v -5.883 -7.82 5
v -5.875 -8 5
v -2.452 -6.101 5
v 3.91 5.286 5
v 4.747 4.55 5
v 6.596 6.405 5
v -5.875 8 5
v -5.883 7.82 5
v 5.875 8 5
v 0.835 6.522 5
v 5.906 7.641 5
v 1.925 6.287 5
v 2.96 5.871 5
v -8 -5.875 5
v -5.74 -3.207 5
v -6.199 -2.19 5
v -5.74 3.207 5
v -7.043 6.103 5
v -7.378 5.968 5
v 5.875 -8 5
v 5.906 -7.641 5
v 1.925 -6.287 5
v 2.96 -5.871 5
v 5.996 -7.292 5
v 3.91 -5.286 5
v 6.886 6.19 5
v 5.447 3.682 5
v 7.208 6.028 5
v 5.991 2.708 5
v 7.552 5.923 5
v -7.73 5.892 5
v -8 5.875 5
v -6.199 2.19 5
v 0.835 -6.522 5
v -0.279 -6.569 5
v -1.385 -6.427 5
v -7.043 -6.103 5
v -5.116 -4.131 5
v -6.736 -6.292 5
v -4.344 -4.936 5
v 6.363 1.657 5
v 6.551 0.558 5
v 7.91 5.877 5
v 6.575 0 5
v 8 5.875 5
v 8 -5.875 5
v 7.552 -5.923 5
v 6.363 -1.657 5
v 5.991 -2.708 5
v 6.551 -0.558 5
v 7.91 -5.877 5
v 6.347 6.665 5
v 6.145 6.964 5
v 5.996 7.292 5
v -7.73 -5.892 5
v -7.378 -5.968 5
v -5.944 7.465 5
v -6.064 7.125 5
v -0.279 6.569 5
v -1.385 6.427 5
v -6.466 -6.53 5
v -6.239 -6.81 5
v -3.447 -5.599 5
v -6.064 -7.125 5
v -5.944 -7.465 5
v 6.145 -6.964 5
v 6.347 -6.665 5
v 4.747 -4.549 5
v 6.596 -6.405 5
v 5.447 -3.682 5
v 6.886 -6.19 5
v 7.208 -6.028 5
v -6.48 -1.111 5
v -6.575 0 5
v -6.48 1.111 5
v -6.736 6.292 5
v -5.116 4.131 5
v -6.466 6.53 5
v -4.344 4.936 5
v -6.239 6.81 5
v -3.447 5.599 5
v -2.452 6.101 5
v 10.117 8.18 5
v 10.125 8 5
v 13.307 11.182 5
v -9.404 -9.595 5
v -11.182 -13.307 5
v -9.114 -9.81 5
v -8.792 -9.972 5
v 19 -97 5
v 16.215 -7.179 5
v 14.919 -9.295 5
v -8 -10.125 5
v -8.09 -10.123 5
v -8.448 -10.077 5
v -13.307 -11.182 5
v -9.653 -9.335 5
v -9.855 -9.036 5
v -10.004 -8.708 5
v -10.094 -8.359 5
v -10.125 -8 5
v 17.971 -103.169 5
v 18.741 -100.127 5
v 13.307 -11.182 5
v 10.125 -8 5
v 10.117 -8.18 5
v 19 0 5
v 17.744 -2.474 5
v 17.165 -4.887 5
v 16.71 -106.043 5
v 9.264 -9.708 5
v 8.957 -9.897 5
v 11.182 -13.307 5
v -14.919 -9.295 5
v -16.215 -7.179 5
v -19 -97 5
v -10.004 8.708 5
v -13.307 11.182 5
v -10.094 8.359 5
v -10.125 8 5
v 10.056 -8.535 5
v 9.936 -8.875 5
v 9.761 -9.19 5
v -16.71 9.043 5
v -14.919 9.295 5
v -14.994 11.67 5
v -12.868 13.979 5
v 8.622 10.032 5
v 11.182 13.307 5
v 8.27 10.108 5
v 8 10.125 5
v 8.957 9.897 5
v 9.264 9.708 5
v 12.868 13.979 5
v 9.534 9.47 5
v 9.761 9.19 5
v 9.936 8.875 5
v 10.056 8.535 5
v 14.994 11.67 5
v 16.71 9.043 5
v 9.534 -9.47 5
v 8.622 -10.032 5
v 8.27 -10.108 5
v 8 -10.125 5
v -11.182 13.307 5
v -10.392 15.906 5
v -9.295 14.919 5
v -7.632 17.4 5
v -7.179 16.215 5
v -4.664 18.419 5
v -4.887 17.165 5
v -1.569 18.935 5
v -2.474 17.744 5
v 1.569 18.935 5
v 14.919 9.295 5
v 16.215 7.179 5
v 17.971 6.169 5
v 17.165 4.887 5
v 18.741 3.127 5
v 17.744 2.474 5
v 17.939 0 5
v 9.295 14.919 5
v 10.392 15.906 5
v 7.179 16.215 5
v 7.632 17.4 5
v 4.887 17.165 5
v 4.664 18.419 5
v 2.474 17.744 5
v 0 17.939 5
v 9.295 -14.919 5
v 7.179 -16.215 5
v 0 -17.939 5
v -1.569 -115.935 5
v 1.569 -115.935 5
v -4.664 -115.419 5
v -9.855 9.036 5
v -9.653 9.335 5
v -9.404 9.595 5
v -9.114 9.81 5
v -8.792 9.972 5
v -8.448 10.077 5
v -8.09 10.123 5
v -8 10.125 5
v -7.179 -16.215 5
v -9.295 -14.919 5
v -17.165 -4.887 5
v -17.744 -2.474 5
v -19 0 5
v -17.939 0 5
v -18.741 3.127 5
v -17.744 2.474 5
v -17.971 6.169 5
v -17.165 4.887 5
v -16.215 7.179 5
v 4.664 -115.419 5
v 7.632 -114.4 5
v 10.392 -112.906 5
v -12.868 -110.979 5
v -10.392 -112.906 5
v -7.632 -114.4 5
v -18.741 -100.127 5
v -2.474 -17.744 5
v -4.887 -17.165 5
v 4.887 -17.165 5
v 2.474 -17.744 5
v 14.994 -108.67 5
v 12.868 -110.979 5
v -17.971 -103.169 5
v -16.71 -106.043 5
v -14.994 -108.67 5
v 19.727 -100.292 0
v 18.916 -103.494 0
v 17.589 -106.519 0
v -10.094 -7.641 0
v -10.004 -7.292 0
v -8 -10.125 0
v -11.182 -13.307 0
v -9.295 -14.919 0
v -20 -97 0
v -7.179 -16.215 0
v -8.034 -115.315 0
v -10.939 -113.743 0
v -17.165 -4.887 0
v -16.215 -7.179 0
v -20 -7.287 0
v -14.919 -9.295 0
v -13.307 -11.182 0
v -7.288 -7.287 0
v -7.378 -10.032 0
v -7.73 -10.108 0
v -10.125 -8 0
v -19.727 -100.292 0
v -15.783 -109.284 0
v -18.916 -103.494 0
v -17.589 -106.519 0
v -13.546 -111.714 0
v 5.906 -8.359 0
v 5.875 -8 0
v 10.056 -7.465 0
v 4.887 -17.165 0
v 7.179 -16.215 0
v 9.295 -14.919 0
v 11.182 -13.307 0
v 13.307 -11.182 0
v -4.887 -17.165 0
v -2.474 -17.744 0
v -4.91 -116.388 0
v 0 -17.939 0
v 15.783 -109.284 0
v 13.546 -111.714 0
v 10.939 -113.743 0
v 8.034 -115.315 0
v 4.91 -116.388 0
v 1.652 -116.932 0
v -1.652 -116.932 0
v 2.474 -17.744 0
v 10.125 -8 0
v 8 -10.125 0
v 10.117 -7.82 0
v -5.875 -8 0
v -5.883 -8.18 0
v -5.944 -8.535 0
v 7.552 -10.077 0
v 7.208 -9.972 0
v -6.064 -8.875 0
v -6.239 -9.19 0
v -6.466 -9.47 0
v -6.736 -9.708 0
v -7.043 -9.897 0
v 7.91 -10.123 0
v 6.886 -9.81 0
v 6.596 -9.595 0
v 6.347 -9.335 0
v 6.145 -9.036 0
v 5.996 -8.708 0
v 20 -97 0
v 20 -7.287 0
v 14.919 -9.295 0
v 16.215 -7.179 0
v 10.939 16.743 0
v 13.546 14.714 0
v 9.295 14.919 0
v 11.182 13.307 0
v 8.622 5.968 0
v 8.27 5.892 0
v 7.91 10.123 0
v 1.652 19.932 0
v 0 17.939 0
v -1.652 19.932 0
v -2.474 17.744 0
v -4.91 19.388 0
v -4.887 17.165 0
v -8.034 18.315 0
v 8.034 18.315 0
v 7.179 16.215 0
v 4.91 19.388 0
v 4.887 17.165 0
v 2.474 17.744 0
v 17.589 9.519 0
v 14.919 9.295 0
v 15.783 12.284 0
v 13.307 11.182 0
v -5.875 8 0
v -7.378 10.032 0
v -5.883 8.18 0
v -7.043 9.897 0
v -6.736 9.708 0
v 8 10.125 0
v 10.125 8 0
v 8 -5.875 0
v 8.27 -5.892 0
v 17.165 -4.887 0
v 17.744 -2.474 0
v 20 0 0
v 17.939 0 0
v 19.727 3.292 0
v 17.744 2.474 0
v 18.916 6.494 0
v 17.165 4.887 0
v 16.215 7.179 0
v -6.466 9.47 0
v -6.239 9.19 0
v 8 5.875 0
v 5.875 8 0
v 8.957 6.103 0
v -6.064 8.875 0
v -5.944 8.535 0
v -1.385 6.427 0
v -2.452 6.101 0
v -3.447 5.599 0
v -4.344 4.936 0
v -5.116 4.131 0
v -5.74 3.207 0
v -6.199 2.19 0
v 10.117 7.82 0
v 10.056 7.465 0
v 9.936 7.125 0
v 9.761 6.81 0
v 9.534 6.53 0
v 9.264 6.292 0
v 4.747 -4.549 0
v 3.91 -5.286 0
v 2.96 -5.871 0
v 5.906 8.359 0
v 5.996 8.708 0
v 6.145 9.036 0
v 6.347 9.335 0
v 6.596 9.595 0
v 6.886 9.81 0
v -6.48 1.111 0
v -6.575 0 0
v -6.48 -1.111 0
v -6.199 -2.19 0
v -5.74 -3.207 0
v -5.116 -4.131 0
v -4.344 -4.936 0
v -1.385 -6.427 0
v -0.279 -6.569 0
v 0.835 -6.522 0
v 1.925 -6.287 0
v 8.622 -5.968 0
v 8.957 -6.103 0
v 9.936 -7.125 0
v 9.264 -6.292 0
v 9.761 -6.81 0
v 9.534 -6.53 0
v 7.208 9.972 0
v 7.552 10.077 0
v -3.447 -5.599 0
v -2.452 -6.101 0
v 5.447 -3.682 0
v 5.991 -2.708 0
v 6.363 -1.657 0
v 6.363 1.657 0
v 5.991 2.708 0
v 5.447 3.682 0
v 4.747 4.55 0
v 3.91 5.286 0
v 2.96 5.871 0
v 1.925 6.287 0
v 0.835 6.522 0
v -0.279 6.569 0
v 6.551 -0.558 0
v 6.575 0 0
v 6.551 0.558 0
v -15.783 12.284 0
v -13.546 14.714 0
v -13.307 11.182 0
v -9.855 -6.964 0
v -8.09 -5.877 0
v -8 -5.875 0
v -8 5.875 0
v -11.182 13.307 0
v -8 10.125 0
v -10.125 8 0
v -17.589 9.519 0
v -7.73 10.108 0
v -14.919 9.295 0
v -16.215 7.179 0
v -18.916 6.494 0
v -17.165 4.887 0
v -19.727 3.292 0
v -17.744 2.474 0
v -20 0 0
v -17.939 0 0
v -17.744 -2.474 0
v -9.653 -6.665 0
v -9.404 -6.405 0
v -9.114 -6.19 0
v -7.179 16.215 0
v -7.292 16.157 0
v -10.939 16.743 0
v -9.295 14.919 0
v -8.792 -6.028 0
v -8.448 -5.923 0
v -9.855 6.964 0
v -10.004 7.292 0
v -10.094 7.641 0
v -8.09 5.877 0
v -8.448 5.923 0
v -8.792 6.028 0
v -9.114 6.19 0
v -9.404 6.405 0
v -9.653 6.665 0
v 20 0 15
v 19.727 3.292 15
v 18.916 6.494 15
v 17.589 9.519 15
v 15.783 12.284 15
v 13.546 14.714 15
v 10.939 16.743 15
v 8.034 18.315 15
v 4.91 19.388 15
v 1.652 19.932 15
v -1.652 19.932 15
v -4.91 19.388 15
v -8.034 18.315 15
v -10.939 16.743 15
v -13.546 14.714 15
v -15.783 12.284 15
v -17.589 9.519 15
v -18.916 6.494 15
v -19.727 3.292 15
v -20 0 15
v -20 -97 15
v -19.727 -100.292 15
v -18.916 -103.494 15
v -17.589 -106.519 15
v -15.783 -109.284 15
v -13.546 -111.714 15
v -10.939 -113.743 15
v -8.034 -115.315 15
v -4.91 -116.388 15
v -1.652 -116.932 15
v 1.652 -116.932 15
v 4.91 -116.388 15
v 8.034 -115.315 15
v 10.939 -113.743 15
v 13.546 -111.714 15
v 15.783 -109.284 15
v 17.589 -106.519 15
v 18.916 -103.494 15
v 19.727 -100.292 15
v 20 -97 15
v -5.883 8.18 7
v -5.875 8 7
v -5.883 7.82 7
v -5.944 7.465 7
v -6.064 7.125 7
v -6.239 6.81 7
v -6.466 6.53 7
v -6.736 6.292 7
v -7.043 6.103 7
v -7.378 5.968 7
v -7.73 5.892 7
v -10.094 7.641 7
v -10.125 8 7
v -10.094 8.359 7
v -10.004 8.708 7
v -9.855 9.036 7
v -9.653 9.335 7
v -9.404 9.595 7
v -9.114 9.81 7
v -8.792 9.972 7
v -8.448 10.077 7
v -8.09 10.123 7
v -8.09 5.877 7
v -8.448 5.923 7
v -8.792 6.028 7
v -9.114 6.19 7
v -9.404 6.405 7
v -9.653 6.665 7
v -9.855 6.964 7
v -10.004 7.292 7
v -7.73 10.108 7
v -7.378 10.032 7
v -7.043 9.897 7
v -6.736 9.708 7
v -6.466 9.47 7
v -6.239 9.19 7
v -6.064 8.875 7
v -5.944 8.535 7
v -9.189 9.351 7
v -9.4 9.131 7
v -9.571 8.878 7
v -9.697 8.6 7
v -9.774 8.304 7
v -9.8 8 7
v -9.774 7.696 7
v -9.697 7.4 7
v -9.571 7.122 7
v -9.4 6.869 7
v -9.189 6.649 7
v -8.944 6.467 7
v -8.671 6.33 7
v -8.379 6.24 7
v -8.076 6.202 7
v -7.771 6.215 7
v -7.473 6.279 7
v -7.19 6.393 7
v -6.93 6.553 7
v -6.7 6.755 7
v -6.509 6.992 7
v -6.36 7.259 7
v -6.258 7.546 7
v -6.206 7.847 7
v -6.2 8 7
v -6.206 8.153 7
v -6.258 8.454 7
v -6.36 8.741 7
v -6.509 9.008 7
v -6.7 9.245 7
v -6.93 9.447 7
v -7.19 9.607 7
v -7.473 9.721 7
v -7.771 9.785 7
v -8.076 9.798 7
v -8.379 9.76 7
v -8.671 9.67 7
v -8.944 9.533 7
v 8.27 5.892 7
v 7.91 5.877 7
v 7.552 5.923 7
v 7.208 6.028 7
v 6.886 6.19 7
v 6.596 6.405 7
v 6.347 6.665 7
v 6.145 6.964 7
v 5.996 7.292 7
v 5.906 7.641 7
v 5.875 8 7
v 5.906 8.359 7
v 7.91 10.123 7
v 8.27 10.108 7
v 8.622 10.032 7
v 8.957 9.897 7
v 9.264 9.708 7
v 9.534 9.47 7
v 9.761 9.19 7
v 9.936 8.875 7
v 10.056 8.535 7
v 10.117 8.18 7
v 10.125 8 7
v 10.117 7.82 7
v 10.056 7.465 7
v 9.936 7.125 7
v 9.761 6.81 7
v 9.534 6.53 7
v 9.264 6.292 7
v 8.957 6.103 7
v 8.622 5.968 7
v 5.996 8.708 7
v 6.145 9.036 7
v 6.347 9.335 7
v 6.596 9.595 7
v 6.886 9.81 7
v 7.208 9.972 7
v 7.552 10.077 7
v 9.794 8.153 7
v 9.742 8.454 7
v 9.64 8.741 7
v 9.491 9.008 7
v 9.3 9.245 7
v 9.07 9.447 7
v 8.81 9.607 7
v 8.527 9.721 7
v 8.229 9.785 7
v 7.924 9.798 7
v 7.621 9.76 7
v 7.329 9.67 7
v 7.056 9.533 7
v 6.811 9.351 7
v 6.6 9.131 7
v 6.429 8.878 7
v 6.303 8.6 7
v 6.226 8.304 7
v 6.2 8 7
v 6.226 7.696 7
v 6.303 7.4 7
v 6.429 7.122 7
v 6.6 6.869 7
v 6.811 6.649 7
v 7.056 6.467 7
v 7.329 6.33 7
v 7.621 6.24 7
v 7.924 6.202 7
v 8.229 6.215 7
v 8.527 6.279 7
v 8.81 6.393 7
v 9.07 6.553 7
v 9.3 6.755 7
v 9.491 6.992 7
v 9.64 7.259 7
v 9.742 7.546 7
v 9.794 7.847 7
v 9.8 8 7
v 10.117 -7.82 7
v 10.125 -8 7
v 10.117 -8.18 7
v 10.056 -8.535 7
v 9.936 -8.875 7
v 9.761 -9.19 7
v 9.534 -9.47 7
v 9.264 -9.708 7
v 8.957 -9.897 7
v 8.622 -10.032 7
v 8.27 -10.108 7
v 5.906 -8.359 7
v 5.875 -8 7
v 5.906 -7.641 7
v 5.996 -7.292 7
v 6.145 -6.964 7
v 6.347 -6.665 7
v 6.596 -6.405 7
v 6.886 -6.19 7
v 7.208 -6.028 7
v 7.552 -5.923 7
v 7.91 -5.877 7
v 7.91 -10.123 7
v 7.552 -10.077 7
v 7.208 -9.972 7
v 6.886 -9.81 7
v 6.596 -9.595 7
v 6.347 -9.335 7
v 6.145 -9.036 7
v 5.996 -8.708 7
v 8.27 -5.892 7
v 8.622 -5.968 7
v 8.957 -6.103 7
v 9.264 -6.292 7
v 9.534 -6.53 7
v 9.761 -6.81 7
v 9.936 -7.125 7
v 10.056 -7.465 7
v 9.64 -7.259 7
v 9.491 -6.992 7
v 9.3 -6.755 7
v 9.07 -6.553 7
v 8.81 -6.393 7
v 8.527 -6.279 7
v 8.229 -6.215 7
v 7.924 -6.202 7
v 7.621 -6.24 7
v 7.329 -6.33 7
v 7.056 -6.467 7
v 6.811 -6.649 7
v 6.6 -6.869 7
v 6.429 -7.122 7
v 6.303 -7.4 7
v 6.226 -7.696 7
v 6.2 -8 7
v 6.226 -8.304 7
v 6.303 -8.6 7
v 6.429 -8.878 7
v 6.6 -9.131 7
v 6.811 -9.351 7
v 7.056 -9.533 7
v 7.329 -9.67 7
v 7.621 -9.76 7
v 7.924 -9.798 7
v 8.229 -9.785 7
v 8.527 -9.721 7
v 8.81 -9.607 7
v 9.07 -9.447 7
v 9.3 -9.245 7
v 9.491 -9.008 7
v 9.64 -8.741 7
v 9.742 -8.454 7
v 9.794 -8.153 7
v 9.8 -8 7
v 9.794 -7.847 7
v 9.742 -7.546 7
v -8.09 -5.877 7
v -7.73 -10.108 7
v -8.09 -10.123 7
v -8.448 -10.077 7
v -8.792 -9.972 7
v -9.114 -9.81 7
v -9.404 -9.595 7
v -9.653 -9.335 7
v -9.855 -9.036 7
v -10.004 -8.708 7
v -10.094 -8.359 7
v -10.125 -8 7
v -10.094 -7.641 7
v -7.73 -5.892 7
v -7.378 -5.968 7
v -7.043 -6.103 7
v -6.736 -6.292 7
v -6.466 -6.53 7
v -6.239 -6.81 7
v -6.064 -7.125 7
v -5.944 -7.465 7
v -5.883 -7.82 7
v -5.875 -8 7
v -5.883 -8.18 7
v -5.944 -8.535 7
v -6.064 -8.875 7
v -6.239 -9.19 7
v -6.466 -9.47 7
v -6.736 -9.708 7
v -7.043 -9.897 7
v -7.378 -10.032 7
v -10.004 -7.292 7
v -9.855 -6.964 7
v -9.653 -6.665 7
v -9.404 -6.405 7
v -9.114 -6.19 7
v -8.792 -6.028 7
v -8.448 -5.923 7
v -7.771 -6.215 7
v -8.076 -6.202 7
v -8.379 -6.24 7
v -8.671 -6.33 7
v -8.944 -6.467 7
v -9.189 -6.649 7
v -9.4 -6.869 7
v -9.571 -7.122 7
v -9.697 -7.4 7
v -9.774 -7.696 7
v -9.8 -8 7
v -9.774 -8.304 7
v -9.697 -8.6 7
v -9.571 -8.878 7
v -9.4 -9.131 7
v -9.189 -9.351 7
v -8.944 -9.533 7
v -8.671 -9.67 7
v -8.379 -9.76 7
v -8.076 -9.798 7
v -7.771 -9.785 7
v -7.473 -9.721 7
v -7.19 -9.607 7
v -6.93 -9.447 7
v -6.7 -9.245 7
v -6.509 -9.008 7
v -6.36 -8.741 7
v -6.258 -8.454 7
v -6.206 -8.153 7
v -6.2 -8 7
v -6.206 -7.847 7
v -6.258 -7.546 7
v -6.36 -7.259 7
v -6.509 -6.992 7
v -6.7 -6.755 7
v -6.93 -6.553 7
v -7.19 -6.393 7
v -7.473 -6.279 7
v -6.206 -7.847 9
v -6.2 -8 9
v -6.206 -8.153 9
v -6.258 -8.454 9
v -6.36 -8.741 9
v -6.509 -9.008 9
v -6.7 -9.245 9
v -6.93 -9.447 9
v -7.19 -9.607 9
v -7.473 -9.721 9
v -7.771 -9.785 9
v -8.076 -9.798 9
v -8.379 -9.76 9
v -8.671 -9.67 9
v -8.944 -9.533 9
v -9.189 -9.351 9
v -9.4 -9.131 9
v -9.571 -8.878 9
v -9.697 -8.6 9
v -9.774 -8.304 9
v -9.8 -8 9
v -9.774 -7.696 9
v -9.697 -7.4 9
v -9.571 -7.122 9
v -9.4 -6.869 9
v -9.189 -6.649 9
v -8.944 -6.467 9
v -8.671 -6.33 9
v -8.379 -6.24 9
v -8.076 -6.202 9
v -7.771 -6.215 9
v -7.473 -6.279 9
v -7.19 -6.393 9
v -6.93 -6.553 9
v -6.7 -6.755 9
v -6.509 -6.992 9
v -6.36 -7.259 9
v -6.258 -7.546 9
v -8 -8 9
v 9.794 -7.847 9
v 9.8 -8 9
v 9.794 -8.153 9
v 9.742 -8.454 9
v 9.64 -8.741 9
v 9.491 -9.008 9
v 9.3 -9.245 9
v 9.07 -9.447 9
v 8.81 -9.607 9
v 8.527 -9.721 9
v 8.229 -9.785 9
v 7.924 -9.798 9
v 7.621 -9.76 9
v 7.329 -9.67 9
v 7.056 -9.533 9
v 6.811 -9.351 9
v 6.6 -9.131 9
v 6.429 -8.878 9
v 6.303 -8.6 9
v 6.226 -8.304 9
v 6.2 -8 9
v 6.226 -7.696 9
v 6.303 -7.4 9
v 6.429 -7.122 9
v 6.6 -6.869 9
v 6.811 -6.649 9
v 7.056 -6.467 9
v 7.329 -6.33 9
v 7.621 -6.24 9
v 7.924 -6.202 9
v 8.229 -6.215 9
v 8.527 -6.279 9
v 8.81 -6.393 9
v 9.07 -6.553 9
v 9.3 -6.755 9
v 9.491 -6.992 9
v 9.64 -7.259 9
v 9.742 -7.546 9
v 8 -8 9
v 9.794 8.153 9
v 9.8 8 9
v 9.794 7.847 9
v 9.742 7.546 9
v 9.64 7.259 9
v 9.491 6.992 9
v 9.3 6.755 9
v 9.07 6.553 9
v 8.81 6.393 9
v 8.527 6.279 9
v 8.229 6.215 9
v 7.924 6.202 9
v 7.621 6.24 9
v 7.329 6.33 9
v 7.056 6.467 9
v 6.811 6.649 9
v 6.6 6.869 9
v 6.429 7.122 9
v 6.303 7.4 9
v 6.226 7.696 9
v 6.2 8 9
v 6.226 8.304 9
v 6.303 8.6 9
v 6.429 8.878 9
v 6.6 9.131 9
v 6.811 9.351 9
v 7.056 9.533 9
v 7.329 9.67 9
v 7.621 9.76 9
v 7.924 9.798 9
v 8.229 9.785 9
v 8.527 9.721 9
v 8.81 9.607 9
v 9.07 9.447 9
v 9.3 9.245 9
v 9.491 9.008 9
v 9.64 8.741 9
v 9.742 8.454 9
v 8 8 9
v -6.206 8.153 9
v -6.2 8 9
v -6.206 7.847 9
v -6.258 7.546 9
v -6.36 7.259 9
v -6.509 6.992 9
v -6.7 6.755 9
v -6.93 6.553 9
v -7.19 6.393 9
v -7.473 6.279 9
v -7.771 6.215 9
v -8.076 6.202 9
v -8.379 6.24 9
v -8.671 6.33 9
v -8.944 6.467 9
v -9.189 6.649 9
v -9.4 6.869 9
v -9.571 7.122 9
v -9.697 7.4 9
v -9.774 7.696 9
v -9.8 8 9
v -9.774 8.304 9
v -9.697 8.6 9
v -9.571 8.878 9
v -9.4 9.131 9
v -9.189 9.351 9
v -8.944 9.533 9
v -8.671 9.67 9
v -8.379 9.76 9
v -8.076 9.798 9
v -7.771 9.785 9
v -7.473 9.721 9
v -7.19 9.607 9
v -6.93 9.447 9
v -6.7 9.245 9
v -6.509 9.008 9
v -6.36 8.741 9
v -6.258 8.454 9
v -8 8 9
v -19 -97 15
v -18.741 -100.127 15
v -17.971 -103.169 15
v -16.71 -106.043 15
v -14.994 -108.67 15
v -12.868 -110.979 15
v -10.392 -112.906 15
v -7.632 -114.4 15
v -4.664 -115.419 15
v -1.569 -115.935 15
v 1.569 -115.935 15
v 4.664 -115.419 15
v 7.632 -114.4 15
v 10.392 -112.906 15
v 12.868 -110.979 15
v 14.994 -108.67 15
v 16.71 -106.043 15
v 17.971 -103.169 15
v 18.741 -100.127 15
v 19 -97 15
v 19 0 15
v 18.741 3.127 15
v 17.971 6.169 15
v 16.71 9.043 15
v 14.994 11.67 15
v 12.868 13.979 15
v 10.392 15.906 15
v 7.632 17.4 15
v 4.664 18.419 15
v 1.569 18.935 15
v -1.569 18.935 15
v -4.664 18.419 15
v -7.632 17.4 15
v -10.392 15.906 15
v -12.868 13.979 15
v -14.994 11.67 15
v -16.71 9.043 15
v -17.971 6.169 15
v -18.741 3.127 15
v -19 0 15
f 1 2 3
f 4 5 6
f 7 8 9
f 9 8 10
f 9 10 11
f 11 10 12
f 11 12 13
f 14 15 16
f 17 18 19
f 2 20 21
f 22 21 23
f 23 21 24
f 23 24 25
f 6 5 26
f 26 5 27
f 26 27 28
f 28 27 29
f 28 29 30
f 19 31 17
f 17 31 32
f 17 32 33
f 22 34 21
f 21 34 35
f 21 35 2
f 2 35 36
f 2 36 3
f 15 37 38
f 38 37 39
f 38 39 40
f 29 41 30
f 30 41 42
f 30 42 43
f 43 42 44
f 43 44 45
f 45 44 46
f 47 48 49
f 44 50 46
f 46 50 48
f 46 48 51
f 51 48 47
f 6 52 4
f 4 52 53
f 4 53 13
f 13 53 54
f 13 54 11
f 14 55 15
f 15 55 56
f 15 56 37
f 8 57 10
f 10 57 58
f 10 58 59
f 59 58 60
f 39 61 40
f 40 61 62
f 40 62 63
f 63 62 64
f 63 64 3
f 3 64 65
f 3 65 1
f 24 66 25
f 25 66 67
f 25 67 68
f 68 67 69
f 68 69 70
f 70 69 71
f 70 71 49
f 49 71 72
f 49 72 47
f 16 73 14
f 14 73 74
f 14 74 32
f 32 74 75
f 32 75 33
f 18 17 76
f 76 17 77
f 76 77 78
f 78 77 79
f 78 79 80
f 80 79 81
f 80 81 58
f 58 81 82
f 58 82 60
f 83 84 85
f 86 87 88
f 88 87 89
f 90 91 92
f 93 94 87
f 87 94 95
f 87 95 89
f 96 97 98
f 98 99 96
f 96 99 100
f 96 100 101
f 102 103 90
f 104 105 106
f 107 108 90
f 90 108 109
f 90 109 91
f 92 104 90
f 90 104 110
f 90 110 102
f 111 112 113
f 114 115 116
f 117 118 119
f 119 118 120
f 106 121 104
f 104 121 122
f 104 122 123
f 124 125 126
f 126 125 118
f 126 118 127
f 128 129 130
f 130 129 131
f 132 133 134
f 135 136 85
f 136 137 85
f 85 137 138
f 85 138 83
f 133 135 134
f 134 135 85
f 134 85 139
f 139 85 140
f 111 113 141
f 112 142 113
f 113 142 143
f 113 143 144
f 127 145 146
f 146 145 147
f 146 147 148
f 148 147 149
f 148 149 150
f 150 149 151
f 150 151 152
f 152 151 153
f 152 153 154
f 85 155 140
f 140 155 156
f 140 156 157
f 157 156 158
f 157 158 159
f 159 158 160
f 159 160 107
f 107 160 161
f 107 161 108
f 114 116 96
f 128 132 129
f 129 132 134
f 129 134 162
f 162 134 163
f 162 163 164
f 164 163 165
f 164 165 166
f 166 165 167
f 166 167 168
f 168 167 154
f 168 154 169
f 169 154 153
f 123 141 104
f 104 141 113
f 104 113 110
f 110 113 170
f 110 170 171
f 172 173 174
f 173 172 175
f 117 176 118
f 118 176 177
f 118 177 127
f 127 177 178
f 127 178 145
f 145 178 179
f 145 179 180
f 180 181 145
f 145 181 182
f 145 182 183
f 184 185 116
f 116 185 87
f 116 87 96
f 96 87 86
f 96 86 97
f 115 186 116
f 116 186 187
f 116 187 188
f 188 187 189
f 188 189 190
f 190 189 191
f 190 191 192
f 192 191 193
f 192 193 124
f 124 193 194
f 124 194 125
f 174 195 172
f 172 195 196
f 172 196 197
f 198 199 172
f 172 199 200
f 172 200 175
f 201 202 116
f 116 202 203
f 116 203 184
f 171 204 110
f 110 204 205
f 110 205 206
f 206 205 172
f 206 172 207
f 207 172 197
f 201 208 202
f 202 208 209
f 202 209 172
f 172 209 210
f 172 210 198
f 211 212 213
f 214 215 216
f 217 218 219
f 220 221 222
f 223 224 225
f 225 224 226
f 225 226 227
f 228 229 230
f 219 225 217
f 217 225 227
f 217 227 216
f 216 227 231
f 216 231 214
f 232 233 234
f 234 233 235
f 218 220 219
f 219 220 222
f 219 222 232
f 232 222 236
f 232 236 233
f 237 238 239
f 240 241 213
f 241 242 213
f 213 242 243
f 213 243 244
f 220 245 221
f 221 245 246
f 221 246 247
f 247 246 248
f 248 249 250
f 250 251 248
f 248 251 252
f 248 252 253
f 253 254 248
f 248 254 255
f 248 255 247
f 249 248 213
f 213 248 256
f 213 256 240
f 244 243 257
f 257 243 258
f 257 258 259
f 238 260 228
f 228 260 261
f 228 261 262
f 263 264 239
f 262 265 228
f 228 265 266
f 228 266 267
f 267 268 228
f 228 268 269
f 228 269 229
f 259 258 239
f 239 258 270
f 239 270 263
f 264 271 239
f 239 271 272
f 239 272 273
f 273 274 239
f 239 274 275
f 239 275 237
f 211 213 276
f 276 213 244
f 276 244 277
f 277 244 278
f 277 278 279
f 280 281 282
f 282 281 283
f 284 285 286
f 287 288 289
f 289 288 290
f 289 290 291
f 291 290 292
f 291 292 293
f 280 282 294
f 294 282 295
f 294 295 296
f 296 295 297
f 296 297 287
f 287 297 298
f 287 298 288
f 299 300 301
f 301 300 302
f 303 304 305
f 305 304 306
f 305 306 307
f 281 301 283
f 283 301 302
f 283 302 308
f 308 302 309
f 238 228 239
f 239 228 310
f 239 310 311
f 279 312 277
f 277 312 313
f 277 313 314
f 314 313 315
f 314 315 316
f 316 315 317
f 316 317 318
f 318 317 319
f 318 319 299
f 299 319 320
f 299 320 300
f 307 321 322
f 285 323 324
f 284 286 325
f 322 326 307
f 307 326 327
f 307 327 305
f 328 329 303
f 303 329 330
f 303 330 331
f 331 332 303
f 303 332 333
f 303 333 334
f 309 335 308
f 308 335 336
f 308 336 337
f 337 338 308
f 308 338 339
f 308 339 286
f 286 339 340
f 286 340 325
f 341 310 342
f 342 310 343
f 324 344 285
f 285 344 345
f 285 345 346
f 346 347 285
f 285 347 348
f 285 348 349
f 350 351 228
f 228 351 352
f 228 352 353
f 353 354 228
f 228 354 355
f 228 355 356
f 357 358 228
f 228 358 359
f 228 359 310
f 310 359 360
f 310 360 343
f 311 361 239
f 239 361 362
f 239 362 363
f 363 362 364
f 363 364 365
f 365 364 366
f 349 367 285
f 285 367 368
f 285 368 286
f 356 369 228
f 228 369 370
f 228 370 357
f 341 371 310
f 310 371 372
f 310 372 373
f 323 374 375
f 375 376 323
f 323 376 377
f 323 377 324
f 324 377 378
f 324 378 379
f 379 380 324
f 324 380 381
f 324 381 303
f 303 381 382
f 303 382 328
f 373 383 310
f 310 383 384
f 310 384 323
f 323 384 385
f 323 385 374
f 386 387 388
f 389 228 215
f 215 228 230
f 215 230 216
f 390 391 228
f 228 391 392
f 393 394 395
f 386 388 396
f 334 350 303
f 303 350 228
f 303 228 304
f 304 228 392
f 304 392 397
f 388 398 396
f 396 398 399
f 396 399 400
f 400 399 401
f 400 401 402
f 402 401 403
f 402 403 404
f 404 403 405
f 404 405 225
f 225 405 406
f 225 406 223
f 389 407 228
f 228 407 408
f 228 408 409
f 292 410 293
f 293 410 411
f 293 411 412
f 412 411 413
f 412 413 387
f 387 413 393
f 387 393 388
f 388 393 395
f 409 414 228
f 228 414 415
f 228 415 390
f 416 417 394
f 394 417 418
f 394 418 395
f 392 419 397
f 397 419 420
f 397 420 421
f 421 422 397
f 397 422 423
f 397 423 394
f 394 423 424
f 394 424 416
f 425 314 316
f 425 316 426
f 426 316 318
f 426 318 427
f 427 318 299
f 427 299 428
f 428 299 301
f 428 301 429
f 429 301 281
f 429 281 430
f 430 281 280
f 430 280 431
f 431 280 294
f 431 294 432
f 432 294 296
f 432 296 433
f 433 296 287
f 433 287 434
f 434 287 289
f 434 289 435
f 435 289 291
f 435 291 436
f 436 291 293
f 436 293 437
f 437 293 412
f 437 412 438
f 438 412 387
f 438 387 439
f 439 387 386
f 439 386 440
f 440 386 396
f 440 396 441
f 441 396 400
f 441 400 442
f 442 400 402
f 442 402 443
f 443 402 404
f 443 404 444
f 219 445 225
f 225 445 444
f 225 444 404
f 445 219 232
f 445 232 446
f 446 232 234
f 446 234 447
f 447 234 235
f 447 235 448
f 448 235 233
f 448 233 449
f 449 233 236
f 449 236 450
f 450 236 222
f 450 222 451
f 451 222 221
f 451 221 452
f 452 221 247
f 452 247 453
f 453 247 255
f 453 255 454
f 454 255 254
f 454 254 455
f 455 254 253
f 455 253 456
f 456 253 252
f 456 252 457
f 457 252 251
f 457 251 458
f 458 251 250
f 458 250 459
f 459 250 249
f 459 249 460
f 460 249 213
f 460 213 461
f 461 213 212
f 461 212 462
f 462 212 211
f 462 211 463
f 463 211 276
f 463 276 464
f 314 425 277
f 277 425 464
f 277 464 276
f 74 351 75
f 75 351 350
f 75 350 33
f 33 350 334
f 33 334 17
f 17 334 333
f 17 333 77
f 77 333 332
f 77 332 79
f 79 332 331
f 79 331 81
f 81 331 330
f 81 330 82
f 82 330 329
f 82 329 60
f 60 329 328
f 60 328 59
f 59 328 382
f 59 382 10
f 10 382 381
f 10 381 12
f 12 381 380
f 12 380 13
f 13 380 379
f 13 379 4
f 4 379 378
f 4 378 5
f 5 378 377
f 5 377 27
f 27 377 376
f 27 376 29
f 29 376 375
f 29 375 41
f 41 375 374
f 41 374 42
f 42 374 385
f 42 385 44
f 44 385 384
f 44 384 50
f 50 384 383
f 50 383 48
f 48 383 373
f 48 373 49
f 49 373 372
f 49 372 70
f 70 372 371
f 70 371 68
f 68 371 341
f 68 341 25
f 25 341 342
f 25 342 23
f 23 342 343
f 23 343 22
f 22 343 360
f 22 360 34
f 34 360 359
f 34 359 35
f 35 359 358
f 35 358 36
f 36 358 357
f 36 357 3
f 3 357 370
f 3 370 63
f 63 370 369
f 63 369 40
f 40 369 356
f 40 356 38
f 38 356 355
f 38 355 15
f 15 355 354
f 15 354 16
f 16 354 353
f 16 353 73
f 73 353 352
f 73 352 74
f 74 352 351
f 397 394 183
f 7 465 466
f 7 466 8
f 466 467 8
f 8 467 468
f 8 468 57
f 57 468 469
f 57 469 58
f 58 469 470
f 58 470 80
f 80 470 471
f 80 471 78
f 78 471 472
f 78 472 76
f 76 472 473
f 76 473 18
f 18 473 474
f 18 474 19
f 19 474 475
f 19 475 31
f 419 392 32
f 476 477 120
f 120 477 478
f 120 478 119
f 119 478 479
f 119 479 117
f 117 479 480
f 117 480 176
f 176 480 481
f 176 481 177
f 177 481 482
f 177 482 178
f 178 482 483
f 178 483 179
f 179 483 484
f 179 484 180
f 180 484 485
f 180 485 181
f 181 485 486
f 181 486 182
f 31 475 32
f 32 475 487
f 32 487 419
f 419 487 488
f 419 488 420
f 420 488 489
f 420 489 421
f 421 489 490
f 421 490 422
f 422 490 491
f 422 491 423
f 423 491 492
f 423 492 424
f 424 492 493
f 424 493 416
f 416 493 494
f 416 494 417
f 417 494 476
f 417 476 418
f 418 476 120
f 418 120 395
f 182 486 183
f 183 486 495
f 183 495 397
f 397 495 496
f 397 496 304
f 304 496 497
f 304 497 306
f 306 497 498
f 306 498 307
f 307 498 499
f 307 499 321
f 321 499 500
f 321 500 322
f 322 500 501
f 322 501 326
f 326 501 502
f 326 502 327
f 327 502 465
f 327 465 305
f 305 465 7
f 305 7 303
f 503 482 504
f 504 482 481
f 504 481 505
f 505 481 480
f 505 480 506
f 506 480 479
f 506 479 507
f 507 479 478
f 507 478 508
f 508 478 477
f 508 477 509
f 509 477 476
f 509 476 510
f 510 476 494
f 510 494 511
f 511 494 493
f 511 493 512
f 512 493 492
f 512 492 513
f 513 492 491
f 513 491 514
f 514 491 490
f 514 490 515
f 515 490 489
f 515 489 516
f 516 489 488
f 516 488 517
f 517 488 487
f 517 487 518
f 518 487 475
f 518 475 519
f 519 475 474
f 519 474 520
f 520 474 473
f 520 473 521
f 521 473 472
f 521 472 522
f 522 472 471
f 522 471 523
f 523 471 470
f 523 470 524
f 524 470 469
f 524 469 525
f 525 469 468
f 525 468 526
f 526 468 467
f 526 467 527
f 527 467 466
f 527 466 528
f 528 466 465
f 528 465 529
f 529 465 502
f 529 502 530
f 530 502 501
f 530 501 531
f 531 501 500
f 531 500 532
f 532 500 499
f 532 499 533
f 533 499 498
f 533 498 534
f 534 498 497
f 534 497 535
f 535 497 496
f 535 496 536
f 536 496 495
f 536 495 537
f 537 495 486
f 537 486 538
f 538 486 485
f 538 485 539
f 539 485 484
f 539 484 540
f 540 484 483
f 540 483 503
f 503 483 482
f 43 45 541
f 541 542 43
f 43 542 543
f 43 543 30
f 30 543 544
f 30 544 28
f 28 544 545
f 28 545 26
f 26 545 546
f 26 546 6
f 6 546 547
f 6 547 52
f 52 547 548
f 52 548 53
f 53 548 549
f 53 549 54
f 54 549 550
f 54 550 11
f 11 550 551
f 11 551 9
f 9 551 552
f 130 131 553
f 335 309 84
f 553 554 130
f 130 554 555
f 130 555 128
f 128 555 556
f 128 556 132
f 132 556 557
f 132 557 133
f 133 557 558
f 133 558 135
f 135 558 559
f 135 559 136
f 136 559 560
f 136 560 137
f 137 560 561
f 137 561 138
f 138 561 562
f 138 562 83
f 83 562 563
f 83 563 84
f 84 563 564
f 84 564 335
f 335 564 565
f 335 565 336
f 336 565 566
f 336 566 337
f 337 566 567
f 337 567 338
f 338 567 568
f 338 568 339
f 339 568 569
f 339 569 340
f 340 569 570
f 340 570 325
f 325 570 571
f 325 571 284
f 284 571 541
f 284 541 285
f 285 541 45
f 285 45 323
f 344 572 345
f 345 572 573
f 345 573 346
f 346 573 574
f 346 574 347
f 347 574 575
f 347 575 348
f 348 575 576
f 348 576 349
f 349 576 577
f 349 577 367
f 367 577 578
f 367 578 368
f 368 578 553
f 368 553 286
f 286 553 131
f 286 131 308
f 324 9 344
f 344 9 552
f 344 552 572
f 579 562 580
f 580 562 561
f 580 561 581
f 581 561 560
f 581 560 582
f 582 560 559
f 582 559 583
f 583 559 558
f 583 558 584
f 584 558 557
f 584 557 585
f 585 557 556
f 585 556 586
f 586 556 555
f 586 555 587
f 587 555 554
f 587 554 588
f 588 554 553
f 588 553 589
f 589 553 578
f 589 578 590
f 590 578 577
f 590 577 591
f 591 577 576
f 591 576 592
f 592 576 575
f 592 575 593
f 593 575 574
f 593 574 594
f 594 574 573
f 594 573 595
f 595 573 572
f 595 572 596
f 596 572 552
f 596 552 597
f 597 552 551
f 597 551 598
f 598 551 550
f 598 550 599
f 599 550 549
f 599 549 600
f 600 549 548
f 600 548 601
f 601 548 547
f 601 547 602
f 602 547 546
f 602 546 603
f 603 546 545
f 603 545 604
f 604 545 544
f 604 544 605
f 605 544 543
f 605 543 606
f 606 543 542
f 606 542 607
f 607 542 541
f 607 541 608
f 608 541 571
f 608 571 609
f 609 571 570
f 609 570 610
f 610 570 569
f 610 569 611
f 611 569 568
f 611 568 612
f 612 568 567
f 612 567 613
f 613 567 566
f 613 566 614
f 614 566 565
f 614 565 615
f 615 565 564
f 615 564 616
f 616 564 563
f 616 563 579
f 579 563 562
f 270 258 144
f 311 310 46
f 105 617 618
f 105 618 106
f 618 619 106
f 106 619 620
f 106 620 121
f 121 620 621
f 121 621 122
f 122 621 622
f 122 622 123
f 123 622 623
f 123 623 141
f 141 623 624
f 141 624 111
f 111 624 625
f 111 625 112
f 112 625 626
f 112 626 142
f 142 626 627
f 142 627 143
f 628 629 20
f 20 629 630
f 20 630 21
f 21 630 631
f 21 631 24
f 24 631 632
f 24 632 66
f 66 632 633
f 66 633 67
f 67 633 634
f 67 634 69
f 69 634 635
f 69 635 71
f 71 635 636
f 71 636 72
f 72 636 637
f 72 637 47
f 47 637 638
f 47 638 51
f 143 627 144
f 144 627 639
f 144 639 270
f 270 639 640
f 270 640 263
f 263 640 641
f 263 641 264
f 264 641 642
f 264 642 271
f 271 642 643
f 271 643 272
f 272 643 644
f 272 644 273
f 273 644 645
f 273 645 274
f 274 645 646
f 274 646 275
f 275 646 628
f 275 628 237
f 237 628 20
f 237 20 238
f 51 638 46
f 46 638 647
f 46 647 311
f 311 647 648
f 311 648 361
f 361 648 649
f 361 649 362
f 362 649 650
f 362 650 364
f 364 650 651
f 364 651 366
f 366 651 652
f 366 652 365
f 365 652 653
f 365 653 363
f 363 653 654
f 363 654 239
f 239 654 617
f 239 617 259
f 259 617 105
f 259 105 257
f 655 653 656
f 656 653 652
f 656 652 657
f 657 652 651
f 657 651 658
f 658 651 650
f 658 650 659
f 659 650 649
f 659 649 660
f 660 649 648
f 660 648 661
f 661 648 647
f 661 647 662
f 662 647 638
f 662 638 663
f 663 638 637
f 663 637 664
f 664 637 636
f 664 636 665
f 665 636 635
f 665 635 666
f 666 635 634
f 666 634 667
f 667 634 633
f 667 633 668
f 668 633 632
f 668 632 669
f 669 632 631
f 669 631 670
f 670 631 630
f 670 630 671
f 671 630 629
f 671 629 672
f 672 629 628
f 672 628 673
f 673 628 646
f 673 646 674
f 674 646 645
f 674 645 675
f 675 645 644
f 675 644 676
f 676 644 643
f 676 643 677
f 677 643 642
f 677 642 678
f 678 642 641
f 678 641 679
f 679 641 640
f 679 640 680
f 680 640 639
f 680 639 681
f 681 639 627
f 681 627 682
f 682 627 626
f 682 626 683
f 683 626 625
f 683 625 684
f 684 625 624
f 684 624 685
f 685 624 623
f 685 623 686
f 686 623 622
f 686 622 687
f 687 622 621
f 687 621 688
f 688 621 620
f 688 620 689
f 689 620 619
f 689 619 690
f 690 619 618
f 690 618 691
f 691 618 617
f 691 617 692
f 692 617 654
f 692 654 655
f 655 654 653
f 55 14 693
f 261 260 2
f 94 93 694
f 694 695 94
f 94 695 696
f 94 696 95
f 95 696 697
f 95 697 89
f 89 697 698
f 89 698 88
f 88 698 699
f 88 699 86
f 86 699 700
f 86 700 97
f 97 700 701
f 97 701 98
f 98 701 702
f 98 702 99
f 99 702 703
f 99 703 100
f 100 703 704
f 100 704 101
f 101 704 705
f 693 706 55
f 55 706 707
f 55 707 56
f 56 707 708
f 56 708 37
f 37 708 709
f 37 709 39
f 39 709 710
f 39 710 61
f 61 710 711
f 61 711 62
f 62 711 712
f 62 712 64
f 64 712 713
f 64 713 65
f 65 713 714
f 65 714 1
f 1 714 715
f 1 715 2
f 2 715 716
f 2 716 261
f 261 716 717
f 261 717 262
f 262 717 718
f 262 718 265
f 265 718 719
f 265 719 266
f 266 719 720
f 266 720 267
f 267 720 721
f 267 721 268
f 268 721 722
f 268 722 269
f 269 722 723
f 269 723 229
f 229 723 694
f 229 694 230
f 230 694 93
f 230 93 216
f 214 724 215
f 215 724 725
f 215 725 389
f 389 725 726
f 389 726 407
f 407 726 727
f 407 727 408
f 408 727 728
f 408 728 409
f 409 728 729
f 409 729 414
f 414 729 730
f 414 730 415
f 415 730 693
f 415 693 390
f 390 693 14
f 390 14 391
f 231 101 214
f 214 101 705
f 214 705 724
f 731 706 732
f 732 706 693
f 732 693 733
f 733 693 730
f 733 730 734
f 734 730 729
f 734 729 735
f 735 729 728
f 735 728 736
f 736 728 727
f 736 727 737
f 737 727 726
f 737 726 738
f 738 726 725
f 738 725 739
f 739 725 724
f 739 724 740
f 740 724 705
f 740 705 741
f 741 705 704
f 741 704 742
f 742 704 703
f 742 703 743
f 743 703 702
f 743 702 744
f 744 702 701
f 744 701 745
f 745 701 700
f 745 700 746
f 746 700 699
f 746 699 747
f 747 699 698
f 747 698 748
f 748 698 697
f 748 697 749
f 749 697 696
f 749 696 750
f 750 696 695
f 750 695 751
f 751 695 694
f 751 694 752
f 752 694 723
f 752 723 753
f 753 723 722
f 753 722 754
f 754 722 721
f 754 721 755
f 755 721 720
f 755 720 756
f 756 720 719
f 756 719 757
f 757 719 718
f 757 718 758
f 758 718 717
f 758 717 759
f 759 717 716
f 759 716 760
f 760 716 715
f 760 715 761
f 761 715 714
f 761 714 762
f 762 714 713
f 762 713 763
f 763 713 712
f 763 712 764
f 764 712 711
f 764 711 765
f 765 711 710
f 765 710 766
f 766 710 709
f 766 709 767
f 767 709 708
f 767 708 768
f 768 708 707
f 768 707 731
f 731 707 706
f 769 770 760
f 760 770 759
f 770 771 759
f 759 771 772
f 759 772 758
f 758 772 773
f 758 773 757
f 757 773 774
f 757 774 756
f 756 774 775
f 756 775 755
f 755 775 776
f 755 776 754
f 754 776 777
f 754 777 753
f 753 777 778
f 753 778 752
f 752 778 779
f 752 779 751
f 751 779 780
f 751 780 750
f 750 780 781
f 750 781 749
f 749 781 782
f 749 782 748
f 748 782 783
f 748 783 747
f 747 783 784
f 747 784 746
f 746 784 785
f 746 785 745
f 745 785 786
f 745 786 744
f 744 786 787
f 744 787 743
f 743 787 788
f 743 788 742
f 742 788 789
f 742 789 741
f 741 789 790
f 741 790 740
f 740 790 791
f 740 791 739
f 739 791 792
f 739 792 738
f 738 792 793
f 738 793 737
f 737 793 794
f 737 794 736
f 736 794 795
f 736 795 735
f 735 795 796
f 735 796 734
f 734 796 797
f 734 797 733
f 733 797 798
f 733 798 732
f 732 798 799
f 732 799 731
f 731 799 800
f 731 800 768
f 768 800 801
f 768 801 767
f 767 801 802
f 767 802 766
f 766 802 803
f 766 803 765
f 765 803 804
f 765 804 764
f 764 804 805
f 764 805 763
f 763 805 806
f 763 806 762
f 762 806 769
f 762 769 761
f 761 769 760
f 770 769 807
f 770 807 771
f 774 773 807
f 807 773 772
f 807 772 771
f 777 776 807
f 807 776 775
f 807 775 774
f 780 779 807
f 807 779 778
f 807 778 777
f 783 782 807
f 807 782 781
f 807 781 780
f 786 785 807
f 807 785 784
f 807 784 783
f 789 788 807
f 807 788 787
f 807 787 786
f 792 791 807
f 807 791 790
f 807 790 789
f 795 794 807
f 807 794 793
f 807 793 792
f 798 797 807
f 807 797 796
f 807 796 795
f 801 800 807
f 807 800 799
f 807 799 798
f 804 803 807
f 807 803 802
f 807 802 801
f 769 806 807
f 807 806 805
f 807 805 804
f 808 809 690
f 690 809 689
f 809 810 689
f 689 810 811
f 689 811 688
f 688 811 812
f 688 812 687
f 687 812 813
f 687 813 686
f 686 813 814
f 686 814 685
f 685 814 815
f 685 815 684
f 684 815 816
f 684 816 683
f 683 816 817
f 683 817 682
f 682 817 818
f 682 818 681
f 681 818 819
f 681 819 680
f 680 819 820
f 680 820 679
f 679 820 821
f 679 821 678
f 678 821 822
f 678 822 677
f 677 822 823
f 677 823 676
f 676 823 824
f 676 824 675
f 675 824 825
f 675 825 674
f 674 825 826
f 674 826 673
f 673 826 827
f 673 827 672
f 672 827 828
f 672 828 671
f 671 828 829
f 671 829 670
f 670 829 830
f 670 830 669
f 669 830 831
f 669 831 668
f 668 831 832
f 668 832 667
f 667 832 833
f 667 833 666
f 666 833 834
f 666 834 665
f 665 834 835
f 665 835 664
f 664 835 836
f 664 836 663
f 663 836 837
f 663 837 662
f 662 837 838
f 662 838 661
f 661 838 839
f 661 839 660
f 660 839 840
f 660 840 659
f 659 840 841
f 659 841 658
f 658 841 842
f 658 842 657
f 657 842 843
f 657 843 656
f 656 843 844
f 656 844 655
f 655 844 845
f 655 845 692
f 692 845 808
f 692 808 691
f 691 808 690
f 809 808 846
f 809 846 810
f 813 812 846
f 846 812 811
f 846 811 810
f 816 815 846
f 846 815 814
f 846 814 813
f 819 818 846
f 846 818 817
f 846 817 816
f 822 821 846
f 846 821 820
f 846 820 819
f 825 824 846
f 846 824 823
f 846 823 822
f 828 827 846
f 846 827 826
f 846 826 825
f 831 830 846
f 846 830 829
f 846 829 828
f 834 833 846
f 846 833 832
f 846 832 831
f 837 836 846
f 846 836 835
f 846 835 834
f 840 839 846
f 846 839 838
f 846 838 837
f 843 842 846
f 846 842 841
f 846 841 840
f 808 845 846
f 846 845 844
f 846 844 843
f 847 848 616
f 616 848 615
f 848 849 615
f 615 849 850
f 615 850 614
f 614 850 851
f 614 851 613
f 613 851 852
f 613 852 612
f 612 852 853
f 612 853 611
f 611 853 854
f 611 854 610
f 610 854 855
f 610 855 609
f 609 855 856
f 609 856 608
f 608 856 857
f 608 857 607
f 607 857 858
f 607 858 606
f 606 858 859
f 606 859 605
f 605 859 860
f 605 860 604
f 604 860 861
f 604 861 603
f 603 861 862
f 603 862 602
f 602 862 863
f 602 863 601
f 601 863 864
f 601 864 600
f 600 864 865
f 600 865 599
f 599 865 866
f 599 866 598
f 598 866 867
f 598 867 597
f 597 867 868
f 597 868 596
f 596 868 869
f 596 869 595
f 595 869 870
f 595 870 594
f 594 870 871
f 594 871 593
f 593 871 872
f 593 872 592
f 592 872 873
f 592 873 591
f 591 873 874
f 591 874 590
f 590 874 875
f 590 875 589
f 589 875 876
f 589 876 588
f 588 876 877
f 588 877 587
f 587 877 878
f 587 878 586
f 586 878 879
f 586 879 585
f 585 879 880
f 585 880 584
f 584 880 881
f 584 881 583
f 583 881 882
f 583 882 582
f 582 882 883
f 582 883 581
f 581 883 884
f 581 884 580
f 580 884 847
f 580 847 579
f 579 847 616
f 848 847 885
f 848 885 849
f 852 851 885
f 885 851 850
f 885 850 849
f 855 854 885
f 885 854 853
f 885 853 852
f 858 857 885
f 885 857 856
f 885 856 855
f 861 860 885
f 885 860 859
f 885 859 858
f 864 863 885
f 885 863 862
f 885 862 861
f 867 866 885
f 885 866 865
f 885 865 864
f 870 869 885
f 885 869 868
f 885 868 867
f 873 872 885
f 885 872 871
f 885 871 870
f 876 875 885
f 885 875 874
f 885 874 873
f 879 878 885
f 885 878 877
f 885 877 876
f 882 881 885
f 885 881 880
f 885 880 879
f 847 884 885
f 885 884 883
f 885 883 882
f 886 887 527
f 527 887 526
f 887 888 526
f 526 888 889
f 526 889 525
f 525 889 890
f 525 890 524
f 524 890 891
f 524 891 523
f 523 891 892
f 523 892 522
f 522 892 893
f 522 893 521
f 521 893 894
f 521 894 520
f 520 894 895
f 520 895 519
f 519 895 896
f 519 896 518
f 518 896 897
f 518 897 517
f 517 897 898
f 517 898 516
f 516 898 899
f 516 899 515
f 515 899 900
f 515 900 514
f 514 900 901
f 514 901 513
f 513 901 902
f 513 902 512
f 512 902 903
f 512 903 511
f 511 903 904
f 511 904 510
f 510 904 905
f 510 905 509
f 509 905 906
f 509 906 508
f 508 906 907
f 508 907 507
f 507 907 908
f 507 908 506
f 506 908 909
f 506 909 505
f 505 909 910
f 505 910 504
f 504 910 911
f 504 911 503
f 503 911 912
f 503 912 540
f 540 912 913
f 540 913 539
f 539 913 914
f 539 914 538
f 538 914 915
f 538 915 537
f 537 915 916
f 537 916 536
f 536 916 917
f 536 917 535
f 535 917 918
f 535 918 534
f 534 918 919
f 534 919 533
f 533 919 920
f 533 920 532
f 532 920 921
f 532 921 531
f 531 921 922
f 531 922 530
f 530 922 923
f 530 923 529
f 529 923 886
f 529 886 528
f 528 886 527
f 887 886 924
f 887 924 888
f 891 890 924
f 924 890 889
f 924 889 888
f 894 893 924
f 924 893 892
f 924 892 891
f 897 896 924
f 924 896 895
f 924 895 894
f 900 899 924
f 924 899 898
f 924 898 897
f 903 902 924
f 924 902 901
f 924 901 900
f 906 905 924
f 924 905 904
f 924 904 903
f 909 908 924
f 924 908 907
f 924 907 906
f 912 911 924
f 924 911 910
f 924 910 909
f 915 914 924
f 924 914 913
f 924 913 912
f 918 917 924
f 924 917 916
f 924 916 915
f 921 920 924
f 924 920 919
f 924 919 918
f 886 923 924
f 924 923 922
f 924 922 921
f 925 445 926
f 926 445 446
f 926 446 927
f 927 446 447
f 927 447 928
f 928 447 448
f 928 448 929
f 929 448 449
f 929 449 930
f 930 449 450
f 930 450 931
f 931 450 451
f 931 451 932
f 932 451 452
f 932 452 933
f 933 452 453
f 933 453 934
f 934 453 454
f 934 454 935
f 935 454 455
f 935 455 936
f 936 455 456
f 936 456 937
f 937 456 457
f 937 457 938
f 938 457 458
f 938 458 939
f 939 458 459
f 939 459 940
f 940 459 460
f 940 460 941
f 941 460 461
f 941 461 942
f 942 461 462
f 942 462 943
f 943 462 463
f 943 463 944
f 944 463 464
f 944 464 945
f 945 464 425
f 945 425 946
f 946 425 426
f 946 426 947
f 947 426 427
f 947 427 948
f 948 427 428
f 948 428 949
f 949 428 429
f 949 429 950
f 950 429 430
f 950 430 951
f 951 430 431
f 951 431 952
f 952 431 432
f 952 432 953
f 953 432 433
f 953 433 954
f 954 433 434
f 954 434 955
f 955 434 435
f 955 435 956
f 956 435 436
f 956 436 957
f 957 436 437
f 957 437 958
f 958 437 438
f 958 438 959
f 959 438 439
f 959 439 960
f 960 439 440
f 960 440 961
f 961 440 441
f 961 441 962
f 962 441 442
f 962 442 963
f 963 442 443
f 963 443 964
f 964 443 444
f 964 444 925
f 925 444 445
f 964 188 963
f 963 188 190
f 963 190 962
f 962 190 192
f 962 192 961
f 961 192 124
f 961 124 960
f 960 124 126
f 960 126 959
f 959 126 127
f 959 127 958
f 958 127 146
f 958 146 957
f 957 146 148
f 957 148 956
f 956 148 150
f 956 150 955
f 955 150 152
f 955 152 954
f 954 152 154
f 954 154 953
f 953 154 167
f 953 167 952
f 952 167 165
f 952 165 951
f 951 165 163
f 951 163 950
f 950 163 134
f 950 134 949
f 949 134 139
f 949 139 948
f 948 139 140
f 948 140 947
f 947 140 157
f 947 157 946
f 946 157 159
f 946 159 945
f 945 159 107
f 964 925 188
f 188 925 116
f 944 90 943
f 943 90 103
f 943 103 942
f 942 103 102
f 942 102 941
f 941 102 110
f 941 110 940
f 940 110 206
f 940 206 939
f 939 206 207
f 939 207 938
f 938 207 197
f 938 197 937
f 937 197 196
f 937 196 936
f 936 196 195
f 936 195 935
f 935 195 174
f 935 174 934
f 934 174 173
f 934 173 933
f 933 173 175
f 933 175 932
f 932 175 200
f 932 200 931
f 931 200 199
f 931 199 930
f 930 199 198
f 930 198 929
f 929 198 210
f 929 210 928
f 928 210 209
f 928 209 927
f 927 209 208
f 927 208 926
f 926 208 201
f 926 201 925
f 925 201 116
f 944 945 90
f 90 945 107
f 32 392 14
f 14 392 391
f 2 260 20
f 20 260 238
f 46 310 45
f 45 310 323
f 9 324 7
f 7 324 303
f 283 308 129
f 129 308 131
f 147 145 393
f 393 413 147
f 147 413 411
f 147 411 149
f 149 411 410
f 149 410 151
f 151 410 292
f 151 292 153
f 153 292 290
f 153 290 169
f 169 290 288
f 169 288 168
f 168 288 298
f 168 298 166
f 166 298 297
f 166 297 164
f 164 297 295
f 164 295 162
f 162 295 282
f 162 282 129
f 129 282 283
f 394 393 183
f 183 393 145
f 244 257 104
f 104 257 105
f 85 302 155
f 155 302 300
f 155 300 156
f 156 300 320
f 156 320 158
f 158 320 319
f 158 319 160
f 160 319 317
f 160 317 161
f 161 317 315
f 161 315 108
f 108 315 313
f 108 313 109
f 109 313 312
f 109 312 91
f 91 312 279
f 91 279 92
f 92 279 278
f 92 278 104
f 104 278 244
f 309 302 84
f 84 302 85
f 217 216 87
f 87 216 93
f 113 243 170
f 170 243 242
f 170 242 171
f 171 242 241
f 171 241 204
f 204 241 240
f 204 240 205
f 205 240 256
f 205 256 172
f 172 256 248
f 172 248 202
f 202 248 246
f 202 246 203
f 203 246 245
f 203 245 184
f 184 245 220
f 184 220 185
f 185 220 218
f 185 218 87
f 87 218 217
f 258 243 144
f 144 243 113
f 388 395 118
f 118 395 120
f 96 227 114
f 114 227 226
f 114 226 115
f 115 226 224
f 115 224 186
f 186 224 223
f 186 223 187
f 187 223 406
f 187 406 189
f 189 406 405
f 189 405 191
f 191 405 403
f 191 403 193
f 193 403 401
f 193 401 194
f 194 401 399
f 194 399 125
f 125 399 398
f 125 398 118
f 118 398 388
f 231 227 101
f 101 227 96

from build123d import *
from build123d.topology import SkipClean

# Parameters (mm, degrees)
SKETCH2_R           = 6.575
BOSS_EXTRUDE1_DEPTH = 5
SKETCH4_R           = 2.125
BOSS_EXTRUDE3_DEPTH = 2
SKETCH5_R           = 1.8
BOSS_EXTRUDE4_DEPTH = 2
BOSS_EXTRUDE5_DEPTH = 10
CUT_EXTRUDE1_START  = -10
CUT_EXTRUDE1_DEPTH  = 10
CUT_EXTRUDE2_DEPTH  = 10


with BuildPart() as part:
    # Sketch2 → Boss-Extrude1 (new body)
    with BuildSketch(Plane.XY):
        with BuildLine():
            Line((-20, 0), (-20, -97))
            ThreePointArc((-20, -97), (0, -117), (20, -97))
            Line((20, -97), (20, 0))
            ThreePointArc((20, 0), (0, 20), (-20, 0))
        make_face()
        Circle(SKETCH2_R, mode=Mode.SUBTRACT)
    extrude(amount=BOSS_EXTRUDE1_DEPTH)

    # Sketch4 → Boss-Extrude3 (add)
    with BuildSketch(Plane.XY.offset(5)):
        with Locations((-8, 8)):
            Circle(SKETCH4_R)
        with Locations((8, 8)):
            Circle(SKETCH4_R)
        with Locations((8, -8)):
            Circle(SKETCH4_R)
        with Locations((-8, -8)):
            Circle(SKETCH4_R)
    extrude(amount=BOSS_EXTRUDE3_DEPTH)

    # Sketch5 → Boss-Extrude4 (add)
    with BuildSketch(Plane.XY.offset(7)):
        with Locations((-8, 8)):
            Circle(SKETCH5_R)
        with Locations((8, 8)):
            Circle(SKETCH5_R)
        with Locations((8, -8)):
            Circle(SKETCH5_R)
        with Locations((-8, -8)):
            Circle(SKETCH5_R)
    extrude(amount=BOSS_EXTRUDE4_DEPTH)

    # Sketch6 → Boss-Extrude5 (add)
    with BuildSketch(Plane.XY.offset(5)):
        with BuildLine():
            Line((20, -97), (20, 0))
            ThreePointArc((20, 0), (0, 20), (-20, 0))
            Line((-20, 0), (-20, -97))
            ThreePointArc((-20, -97), (0, -117), (20, -97))
        make_face()
        with BuildLine():
            Line((-19, 0), (-19, -97))
            ThreePointArc((-19, -97), (0, -116), (19, -97))
            Line((19, -97), (19, 0))
            ThreePointArc((19, 0), (0, 19), (-19, 0))
        make_face(mode=Mode.SUBTRACT)
    extrude(amount=BOSS_EXTRUDE5_DEPTH)

    # Sketch7 → Cut-Extrude1 (cut)
    with BuildSketch(Plane.XY.offset(5).offset(CUT_EXTRUDE1_START)):
        with BuildLine():
            Line((-10.125, 8), (-10.125, -8))
            ThreePointArc((-10.125, -8), (-9.50260191, -6.49739809), (-8, -5.875))
            Line((-8, -5.875), (-8, 5.875))
            ThreePointArc((-8, 5.875), (-9.50260191, 6.49739809), (-10.125, 8))
        make_face()
        with BuildLine():
            Line((-8, -10.125), (8, -10.125))
            ThreePointArc((8, -10.125), (6.49739809, -9.50260191), (5.875, -8))
            Line((5.875, -8), (-5.875, -8))
            ThreePointArc((-5.875, -8), (-6.49739809, -9.50260191), (-8, -10.125))
        make_face()
        with BuildLine():
            Line((10.125, -8), (10.125, 8))
            ThreePointArc((10.125, 8), (9.50260191, 6.49739809), (8, 5.875))
            Line((8, 5.875), (8, -5.875))
            ThreePointArc((8, -5.875), (9.50260191, -6.49739809), (10.125, -8))
        make_face()
        with BuildLine():
            Line((8, 10.125), (-8, 10.125))
            ThreePointArc((-8, 10.125), (-6.49739809, 9.50260191), (-5.875, 8))
            Line((-5.875, 8), (5.875, 8))
            ThreePointArc((5.875, 8), (6.49739809, 9.50260191), (8, 10.125))
        make_face()
    extrude(amount=CUT_EXTRUDE1_DEPTH, mode=Mode.SUBTRACT)

    # Sketch10 → Cut-Extrude2 (cut)
    with SkipClean():  # the faces are left unmerged after this step: merging them gives an invalid solid
        with BuildSketch(Plane(origin=(0, 0, 0), x_dir=(-1, 0, 0), z_dir=(0, 0, -1))):
            with BuildLine():
                Line((-8, 10.125), (-11.181980515, 13.306980515))
                ThreePointArc((-11.181980515, 13.306980515), (0, 17.938708499), (11.181980515, 13.306980515))
                Line((11.181980515, 13.306980515), (8, 10.125))
                Line((8, 10.125), (-8, 10.125))
            make_face()
            with BuildLine():
                Line((-10.125, 8), (-13.306980515, 11.181980515))
                ThreePointArc((-13.306980515, 11.181980515), (-17.938708499, 0), (-13.306980515, -11.181980515))
                Line((-13.306980515, -11.181980515), (-10.125, -8))
                Line((-10.125, -8), (-10.125, 8))
            make_face()
            with BuildLine():
                Line((10.125, 8), (13.306980515, 11.181980515))
                ThreePointArc((13.306980515, 11.181980515), (17.938708499, 0), (13.306980515, -11.181980515))
                Line((13.306980515, -11.181980515), (10.125, -8))
                Line((10.125, -8), (10.125, 8))
            make_face()
            with BuildLine():
                Line((8, -10.125), (11.181980515, -13.306980515))
                ThreePointArc((11.181980515, -13.306980515), (0, -17.938708499), (-11.181980515, -13.306980515))
                Line((-11.181980515, -13.306980515), (-8, -10.125))
                Line((-8, -10.125), (8, -10.125))
            make_face()
        extrude(amount=-CUT_EXTRUDE2_DEPTH, mode=Mode.SUBTRACT)


solid = part.part
